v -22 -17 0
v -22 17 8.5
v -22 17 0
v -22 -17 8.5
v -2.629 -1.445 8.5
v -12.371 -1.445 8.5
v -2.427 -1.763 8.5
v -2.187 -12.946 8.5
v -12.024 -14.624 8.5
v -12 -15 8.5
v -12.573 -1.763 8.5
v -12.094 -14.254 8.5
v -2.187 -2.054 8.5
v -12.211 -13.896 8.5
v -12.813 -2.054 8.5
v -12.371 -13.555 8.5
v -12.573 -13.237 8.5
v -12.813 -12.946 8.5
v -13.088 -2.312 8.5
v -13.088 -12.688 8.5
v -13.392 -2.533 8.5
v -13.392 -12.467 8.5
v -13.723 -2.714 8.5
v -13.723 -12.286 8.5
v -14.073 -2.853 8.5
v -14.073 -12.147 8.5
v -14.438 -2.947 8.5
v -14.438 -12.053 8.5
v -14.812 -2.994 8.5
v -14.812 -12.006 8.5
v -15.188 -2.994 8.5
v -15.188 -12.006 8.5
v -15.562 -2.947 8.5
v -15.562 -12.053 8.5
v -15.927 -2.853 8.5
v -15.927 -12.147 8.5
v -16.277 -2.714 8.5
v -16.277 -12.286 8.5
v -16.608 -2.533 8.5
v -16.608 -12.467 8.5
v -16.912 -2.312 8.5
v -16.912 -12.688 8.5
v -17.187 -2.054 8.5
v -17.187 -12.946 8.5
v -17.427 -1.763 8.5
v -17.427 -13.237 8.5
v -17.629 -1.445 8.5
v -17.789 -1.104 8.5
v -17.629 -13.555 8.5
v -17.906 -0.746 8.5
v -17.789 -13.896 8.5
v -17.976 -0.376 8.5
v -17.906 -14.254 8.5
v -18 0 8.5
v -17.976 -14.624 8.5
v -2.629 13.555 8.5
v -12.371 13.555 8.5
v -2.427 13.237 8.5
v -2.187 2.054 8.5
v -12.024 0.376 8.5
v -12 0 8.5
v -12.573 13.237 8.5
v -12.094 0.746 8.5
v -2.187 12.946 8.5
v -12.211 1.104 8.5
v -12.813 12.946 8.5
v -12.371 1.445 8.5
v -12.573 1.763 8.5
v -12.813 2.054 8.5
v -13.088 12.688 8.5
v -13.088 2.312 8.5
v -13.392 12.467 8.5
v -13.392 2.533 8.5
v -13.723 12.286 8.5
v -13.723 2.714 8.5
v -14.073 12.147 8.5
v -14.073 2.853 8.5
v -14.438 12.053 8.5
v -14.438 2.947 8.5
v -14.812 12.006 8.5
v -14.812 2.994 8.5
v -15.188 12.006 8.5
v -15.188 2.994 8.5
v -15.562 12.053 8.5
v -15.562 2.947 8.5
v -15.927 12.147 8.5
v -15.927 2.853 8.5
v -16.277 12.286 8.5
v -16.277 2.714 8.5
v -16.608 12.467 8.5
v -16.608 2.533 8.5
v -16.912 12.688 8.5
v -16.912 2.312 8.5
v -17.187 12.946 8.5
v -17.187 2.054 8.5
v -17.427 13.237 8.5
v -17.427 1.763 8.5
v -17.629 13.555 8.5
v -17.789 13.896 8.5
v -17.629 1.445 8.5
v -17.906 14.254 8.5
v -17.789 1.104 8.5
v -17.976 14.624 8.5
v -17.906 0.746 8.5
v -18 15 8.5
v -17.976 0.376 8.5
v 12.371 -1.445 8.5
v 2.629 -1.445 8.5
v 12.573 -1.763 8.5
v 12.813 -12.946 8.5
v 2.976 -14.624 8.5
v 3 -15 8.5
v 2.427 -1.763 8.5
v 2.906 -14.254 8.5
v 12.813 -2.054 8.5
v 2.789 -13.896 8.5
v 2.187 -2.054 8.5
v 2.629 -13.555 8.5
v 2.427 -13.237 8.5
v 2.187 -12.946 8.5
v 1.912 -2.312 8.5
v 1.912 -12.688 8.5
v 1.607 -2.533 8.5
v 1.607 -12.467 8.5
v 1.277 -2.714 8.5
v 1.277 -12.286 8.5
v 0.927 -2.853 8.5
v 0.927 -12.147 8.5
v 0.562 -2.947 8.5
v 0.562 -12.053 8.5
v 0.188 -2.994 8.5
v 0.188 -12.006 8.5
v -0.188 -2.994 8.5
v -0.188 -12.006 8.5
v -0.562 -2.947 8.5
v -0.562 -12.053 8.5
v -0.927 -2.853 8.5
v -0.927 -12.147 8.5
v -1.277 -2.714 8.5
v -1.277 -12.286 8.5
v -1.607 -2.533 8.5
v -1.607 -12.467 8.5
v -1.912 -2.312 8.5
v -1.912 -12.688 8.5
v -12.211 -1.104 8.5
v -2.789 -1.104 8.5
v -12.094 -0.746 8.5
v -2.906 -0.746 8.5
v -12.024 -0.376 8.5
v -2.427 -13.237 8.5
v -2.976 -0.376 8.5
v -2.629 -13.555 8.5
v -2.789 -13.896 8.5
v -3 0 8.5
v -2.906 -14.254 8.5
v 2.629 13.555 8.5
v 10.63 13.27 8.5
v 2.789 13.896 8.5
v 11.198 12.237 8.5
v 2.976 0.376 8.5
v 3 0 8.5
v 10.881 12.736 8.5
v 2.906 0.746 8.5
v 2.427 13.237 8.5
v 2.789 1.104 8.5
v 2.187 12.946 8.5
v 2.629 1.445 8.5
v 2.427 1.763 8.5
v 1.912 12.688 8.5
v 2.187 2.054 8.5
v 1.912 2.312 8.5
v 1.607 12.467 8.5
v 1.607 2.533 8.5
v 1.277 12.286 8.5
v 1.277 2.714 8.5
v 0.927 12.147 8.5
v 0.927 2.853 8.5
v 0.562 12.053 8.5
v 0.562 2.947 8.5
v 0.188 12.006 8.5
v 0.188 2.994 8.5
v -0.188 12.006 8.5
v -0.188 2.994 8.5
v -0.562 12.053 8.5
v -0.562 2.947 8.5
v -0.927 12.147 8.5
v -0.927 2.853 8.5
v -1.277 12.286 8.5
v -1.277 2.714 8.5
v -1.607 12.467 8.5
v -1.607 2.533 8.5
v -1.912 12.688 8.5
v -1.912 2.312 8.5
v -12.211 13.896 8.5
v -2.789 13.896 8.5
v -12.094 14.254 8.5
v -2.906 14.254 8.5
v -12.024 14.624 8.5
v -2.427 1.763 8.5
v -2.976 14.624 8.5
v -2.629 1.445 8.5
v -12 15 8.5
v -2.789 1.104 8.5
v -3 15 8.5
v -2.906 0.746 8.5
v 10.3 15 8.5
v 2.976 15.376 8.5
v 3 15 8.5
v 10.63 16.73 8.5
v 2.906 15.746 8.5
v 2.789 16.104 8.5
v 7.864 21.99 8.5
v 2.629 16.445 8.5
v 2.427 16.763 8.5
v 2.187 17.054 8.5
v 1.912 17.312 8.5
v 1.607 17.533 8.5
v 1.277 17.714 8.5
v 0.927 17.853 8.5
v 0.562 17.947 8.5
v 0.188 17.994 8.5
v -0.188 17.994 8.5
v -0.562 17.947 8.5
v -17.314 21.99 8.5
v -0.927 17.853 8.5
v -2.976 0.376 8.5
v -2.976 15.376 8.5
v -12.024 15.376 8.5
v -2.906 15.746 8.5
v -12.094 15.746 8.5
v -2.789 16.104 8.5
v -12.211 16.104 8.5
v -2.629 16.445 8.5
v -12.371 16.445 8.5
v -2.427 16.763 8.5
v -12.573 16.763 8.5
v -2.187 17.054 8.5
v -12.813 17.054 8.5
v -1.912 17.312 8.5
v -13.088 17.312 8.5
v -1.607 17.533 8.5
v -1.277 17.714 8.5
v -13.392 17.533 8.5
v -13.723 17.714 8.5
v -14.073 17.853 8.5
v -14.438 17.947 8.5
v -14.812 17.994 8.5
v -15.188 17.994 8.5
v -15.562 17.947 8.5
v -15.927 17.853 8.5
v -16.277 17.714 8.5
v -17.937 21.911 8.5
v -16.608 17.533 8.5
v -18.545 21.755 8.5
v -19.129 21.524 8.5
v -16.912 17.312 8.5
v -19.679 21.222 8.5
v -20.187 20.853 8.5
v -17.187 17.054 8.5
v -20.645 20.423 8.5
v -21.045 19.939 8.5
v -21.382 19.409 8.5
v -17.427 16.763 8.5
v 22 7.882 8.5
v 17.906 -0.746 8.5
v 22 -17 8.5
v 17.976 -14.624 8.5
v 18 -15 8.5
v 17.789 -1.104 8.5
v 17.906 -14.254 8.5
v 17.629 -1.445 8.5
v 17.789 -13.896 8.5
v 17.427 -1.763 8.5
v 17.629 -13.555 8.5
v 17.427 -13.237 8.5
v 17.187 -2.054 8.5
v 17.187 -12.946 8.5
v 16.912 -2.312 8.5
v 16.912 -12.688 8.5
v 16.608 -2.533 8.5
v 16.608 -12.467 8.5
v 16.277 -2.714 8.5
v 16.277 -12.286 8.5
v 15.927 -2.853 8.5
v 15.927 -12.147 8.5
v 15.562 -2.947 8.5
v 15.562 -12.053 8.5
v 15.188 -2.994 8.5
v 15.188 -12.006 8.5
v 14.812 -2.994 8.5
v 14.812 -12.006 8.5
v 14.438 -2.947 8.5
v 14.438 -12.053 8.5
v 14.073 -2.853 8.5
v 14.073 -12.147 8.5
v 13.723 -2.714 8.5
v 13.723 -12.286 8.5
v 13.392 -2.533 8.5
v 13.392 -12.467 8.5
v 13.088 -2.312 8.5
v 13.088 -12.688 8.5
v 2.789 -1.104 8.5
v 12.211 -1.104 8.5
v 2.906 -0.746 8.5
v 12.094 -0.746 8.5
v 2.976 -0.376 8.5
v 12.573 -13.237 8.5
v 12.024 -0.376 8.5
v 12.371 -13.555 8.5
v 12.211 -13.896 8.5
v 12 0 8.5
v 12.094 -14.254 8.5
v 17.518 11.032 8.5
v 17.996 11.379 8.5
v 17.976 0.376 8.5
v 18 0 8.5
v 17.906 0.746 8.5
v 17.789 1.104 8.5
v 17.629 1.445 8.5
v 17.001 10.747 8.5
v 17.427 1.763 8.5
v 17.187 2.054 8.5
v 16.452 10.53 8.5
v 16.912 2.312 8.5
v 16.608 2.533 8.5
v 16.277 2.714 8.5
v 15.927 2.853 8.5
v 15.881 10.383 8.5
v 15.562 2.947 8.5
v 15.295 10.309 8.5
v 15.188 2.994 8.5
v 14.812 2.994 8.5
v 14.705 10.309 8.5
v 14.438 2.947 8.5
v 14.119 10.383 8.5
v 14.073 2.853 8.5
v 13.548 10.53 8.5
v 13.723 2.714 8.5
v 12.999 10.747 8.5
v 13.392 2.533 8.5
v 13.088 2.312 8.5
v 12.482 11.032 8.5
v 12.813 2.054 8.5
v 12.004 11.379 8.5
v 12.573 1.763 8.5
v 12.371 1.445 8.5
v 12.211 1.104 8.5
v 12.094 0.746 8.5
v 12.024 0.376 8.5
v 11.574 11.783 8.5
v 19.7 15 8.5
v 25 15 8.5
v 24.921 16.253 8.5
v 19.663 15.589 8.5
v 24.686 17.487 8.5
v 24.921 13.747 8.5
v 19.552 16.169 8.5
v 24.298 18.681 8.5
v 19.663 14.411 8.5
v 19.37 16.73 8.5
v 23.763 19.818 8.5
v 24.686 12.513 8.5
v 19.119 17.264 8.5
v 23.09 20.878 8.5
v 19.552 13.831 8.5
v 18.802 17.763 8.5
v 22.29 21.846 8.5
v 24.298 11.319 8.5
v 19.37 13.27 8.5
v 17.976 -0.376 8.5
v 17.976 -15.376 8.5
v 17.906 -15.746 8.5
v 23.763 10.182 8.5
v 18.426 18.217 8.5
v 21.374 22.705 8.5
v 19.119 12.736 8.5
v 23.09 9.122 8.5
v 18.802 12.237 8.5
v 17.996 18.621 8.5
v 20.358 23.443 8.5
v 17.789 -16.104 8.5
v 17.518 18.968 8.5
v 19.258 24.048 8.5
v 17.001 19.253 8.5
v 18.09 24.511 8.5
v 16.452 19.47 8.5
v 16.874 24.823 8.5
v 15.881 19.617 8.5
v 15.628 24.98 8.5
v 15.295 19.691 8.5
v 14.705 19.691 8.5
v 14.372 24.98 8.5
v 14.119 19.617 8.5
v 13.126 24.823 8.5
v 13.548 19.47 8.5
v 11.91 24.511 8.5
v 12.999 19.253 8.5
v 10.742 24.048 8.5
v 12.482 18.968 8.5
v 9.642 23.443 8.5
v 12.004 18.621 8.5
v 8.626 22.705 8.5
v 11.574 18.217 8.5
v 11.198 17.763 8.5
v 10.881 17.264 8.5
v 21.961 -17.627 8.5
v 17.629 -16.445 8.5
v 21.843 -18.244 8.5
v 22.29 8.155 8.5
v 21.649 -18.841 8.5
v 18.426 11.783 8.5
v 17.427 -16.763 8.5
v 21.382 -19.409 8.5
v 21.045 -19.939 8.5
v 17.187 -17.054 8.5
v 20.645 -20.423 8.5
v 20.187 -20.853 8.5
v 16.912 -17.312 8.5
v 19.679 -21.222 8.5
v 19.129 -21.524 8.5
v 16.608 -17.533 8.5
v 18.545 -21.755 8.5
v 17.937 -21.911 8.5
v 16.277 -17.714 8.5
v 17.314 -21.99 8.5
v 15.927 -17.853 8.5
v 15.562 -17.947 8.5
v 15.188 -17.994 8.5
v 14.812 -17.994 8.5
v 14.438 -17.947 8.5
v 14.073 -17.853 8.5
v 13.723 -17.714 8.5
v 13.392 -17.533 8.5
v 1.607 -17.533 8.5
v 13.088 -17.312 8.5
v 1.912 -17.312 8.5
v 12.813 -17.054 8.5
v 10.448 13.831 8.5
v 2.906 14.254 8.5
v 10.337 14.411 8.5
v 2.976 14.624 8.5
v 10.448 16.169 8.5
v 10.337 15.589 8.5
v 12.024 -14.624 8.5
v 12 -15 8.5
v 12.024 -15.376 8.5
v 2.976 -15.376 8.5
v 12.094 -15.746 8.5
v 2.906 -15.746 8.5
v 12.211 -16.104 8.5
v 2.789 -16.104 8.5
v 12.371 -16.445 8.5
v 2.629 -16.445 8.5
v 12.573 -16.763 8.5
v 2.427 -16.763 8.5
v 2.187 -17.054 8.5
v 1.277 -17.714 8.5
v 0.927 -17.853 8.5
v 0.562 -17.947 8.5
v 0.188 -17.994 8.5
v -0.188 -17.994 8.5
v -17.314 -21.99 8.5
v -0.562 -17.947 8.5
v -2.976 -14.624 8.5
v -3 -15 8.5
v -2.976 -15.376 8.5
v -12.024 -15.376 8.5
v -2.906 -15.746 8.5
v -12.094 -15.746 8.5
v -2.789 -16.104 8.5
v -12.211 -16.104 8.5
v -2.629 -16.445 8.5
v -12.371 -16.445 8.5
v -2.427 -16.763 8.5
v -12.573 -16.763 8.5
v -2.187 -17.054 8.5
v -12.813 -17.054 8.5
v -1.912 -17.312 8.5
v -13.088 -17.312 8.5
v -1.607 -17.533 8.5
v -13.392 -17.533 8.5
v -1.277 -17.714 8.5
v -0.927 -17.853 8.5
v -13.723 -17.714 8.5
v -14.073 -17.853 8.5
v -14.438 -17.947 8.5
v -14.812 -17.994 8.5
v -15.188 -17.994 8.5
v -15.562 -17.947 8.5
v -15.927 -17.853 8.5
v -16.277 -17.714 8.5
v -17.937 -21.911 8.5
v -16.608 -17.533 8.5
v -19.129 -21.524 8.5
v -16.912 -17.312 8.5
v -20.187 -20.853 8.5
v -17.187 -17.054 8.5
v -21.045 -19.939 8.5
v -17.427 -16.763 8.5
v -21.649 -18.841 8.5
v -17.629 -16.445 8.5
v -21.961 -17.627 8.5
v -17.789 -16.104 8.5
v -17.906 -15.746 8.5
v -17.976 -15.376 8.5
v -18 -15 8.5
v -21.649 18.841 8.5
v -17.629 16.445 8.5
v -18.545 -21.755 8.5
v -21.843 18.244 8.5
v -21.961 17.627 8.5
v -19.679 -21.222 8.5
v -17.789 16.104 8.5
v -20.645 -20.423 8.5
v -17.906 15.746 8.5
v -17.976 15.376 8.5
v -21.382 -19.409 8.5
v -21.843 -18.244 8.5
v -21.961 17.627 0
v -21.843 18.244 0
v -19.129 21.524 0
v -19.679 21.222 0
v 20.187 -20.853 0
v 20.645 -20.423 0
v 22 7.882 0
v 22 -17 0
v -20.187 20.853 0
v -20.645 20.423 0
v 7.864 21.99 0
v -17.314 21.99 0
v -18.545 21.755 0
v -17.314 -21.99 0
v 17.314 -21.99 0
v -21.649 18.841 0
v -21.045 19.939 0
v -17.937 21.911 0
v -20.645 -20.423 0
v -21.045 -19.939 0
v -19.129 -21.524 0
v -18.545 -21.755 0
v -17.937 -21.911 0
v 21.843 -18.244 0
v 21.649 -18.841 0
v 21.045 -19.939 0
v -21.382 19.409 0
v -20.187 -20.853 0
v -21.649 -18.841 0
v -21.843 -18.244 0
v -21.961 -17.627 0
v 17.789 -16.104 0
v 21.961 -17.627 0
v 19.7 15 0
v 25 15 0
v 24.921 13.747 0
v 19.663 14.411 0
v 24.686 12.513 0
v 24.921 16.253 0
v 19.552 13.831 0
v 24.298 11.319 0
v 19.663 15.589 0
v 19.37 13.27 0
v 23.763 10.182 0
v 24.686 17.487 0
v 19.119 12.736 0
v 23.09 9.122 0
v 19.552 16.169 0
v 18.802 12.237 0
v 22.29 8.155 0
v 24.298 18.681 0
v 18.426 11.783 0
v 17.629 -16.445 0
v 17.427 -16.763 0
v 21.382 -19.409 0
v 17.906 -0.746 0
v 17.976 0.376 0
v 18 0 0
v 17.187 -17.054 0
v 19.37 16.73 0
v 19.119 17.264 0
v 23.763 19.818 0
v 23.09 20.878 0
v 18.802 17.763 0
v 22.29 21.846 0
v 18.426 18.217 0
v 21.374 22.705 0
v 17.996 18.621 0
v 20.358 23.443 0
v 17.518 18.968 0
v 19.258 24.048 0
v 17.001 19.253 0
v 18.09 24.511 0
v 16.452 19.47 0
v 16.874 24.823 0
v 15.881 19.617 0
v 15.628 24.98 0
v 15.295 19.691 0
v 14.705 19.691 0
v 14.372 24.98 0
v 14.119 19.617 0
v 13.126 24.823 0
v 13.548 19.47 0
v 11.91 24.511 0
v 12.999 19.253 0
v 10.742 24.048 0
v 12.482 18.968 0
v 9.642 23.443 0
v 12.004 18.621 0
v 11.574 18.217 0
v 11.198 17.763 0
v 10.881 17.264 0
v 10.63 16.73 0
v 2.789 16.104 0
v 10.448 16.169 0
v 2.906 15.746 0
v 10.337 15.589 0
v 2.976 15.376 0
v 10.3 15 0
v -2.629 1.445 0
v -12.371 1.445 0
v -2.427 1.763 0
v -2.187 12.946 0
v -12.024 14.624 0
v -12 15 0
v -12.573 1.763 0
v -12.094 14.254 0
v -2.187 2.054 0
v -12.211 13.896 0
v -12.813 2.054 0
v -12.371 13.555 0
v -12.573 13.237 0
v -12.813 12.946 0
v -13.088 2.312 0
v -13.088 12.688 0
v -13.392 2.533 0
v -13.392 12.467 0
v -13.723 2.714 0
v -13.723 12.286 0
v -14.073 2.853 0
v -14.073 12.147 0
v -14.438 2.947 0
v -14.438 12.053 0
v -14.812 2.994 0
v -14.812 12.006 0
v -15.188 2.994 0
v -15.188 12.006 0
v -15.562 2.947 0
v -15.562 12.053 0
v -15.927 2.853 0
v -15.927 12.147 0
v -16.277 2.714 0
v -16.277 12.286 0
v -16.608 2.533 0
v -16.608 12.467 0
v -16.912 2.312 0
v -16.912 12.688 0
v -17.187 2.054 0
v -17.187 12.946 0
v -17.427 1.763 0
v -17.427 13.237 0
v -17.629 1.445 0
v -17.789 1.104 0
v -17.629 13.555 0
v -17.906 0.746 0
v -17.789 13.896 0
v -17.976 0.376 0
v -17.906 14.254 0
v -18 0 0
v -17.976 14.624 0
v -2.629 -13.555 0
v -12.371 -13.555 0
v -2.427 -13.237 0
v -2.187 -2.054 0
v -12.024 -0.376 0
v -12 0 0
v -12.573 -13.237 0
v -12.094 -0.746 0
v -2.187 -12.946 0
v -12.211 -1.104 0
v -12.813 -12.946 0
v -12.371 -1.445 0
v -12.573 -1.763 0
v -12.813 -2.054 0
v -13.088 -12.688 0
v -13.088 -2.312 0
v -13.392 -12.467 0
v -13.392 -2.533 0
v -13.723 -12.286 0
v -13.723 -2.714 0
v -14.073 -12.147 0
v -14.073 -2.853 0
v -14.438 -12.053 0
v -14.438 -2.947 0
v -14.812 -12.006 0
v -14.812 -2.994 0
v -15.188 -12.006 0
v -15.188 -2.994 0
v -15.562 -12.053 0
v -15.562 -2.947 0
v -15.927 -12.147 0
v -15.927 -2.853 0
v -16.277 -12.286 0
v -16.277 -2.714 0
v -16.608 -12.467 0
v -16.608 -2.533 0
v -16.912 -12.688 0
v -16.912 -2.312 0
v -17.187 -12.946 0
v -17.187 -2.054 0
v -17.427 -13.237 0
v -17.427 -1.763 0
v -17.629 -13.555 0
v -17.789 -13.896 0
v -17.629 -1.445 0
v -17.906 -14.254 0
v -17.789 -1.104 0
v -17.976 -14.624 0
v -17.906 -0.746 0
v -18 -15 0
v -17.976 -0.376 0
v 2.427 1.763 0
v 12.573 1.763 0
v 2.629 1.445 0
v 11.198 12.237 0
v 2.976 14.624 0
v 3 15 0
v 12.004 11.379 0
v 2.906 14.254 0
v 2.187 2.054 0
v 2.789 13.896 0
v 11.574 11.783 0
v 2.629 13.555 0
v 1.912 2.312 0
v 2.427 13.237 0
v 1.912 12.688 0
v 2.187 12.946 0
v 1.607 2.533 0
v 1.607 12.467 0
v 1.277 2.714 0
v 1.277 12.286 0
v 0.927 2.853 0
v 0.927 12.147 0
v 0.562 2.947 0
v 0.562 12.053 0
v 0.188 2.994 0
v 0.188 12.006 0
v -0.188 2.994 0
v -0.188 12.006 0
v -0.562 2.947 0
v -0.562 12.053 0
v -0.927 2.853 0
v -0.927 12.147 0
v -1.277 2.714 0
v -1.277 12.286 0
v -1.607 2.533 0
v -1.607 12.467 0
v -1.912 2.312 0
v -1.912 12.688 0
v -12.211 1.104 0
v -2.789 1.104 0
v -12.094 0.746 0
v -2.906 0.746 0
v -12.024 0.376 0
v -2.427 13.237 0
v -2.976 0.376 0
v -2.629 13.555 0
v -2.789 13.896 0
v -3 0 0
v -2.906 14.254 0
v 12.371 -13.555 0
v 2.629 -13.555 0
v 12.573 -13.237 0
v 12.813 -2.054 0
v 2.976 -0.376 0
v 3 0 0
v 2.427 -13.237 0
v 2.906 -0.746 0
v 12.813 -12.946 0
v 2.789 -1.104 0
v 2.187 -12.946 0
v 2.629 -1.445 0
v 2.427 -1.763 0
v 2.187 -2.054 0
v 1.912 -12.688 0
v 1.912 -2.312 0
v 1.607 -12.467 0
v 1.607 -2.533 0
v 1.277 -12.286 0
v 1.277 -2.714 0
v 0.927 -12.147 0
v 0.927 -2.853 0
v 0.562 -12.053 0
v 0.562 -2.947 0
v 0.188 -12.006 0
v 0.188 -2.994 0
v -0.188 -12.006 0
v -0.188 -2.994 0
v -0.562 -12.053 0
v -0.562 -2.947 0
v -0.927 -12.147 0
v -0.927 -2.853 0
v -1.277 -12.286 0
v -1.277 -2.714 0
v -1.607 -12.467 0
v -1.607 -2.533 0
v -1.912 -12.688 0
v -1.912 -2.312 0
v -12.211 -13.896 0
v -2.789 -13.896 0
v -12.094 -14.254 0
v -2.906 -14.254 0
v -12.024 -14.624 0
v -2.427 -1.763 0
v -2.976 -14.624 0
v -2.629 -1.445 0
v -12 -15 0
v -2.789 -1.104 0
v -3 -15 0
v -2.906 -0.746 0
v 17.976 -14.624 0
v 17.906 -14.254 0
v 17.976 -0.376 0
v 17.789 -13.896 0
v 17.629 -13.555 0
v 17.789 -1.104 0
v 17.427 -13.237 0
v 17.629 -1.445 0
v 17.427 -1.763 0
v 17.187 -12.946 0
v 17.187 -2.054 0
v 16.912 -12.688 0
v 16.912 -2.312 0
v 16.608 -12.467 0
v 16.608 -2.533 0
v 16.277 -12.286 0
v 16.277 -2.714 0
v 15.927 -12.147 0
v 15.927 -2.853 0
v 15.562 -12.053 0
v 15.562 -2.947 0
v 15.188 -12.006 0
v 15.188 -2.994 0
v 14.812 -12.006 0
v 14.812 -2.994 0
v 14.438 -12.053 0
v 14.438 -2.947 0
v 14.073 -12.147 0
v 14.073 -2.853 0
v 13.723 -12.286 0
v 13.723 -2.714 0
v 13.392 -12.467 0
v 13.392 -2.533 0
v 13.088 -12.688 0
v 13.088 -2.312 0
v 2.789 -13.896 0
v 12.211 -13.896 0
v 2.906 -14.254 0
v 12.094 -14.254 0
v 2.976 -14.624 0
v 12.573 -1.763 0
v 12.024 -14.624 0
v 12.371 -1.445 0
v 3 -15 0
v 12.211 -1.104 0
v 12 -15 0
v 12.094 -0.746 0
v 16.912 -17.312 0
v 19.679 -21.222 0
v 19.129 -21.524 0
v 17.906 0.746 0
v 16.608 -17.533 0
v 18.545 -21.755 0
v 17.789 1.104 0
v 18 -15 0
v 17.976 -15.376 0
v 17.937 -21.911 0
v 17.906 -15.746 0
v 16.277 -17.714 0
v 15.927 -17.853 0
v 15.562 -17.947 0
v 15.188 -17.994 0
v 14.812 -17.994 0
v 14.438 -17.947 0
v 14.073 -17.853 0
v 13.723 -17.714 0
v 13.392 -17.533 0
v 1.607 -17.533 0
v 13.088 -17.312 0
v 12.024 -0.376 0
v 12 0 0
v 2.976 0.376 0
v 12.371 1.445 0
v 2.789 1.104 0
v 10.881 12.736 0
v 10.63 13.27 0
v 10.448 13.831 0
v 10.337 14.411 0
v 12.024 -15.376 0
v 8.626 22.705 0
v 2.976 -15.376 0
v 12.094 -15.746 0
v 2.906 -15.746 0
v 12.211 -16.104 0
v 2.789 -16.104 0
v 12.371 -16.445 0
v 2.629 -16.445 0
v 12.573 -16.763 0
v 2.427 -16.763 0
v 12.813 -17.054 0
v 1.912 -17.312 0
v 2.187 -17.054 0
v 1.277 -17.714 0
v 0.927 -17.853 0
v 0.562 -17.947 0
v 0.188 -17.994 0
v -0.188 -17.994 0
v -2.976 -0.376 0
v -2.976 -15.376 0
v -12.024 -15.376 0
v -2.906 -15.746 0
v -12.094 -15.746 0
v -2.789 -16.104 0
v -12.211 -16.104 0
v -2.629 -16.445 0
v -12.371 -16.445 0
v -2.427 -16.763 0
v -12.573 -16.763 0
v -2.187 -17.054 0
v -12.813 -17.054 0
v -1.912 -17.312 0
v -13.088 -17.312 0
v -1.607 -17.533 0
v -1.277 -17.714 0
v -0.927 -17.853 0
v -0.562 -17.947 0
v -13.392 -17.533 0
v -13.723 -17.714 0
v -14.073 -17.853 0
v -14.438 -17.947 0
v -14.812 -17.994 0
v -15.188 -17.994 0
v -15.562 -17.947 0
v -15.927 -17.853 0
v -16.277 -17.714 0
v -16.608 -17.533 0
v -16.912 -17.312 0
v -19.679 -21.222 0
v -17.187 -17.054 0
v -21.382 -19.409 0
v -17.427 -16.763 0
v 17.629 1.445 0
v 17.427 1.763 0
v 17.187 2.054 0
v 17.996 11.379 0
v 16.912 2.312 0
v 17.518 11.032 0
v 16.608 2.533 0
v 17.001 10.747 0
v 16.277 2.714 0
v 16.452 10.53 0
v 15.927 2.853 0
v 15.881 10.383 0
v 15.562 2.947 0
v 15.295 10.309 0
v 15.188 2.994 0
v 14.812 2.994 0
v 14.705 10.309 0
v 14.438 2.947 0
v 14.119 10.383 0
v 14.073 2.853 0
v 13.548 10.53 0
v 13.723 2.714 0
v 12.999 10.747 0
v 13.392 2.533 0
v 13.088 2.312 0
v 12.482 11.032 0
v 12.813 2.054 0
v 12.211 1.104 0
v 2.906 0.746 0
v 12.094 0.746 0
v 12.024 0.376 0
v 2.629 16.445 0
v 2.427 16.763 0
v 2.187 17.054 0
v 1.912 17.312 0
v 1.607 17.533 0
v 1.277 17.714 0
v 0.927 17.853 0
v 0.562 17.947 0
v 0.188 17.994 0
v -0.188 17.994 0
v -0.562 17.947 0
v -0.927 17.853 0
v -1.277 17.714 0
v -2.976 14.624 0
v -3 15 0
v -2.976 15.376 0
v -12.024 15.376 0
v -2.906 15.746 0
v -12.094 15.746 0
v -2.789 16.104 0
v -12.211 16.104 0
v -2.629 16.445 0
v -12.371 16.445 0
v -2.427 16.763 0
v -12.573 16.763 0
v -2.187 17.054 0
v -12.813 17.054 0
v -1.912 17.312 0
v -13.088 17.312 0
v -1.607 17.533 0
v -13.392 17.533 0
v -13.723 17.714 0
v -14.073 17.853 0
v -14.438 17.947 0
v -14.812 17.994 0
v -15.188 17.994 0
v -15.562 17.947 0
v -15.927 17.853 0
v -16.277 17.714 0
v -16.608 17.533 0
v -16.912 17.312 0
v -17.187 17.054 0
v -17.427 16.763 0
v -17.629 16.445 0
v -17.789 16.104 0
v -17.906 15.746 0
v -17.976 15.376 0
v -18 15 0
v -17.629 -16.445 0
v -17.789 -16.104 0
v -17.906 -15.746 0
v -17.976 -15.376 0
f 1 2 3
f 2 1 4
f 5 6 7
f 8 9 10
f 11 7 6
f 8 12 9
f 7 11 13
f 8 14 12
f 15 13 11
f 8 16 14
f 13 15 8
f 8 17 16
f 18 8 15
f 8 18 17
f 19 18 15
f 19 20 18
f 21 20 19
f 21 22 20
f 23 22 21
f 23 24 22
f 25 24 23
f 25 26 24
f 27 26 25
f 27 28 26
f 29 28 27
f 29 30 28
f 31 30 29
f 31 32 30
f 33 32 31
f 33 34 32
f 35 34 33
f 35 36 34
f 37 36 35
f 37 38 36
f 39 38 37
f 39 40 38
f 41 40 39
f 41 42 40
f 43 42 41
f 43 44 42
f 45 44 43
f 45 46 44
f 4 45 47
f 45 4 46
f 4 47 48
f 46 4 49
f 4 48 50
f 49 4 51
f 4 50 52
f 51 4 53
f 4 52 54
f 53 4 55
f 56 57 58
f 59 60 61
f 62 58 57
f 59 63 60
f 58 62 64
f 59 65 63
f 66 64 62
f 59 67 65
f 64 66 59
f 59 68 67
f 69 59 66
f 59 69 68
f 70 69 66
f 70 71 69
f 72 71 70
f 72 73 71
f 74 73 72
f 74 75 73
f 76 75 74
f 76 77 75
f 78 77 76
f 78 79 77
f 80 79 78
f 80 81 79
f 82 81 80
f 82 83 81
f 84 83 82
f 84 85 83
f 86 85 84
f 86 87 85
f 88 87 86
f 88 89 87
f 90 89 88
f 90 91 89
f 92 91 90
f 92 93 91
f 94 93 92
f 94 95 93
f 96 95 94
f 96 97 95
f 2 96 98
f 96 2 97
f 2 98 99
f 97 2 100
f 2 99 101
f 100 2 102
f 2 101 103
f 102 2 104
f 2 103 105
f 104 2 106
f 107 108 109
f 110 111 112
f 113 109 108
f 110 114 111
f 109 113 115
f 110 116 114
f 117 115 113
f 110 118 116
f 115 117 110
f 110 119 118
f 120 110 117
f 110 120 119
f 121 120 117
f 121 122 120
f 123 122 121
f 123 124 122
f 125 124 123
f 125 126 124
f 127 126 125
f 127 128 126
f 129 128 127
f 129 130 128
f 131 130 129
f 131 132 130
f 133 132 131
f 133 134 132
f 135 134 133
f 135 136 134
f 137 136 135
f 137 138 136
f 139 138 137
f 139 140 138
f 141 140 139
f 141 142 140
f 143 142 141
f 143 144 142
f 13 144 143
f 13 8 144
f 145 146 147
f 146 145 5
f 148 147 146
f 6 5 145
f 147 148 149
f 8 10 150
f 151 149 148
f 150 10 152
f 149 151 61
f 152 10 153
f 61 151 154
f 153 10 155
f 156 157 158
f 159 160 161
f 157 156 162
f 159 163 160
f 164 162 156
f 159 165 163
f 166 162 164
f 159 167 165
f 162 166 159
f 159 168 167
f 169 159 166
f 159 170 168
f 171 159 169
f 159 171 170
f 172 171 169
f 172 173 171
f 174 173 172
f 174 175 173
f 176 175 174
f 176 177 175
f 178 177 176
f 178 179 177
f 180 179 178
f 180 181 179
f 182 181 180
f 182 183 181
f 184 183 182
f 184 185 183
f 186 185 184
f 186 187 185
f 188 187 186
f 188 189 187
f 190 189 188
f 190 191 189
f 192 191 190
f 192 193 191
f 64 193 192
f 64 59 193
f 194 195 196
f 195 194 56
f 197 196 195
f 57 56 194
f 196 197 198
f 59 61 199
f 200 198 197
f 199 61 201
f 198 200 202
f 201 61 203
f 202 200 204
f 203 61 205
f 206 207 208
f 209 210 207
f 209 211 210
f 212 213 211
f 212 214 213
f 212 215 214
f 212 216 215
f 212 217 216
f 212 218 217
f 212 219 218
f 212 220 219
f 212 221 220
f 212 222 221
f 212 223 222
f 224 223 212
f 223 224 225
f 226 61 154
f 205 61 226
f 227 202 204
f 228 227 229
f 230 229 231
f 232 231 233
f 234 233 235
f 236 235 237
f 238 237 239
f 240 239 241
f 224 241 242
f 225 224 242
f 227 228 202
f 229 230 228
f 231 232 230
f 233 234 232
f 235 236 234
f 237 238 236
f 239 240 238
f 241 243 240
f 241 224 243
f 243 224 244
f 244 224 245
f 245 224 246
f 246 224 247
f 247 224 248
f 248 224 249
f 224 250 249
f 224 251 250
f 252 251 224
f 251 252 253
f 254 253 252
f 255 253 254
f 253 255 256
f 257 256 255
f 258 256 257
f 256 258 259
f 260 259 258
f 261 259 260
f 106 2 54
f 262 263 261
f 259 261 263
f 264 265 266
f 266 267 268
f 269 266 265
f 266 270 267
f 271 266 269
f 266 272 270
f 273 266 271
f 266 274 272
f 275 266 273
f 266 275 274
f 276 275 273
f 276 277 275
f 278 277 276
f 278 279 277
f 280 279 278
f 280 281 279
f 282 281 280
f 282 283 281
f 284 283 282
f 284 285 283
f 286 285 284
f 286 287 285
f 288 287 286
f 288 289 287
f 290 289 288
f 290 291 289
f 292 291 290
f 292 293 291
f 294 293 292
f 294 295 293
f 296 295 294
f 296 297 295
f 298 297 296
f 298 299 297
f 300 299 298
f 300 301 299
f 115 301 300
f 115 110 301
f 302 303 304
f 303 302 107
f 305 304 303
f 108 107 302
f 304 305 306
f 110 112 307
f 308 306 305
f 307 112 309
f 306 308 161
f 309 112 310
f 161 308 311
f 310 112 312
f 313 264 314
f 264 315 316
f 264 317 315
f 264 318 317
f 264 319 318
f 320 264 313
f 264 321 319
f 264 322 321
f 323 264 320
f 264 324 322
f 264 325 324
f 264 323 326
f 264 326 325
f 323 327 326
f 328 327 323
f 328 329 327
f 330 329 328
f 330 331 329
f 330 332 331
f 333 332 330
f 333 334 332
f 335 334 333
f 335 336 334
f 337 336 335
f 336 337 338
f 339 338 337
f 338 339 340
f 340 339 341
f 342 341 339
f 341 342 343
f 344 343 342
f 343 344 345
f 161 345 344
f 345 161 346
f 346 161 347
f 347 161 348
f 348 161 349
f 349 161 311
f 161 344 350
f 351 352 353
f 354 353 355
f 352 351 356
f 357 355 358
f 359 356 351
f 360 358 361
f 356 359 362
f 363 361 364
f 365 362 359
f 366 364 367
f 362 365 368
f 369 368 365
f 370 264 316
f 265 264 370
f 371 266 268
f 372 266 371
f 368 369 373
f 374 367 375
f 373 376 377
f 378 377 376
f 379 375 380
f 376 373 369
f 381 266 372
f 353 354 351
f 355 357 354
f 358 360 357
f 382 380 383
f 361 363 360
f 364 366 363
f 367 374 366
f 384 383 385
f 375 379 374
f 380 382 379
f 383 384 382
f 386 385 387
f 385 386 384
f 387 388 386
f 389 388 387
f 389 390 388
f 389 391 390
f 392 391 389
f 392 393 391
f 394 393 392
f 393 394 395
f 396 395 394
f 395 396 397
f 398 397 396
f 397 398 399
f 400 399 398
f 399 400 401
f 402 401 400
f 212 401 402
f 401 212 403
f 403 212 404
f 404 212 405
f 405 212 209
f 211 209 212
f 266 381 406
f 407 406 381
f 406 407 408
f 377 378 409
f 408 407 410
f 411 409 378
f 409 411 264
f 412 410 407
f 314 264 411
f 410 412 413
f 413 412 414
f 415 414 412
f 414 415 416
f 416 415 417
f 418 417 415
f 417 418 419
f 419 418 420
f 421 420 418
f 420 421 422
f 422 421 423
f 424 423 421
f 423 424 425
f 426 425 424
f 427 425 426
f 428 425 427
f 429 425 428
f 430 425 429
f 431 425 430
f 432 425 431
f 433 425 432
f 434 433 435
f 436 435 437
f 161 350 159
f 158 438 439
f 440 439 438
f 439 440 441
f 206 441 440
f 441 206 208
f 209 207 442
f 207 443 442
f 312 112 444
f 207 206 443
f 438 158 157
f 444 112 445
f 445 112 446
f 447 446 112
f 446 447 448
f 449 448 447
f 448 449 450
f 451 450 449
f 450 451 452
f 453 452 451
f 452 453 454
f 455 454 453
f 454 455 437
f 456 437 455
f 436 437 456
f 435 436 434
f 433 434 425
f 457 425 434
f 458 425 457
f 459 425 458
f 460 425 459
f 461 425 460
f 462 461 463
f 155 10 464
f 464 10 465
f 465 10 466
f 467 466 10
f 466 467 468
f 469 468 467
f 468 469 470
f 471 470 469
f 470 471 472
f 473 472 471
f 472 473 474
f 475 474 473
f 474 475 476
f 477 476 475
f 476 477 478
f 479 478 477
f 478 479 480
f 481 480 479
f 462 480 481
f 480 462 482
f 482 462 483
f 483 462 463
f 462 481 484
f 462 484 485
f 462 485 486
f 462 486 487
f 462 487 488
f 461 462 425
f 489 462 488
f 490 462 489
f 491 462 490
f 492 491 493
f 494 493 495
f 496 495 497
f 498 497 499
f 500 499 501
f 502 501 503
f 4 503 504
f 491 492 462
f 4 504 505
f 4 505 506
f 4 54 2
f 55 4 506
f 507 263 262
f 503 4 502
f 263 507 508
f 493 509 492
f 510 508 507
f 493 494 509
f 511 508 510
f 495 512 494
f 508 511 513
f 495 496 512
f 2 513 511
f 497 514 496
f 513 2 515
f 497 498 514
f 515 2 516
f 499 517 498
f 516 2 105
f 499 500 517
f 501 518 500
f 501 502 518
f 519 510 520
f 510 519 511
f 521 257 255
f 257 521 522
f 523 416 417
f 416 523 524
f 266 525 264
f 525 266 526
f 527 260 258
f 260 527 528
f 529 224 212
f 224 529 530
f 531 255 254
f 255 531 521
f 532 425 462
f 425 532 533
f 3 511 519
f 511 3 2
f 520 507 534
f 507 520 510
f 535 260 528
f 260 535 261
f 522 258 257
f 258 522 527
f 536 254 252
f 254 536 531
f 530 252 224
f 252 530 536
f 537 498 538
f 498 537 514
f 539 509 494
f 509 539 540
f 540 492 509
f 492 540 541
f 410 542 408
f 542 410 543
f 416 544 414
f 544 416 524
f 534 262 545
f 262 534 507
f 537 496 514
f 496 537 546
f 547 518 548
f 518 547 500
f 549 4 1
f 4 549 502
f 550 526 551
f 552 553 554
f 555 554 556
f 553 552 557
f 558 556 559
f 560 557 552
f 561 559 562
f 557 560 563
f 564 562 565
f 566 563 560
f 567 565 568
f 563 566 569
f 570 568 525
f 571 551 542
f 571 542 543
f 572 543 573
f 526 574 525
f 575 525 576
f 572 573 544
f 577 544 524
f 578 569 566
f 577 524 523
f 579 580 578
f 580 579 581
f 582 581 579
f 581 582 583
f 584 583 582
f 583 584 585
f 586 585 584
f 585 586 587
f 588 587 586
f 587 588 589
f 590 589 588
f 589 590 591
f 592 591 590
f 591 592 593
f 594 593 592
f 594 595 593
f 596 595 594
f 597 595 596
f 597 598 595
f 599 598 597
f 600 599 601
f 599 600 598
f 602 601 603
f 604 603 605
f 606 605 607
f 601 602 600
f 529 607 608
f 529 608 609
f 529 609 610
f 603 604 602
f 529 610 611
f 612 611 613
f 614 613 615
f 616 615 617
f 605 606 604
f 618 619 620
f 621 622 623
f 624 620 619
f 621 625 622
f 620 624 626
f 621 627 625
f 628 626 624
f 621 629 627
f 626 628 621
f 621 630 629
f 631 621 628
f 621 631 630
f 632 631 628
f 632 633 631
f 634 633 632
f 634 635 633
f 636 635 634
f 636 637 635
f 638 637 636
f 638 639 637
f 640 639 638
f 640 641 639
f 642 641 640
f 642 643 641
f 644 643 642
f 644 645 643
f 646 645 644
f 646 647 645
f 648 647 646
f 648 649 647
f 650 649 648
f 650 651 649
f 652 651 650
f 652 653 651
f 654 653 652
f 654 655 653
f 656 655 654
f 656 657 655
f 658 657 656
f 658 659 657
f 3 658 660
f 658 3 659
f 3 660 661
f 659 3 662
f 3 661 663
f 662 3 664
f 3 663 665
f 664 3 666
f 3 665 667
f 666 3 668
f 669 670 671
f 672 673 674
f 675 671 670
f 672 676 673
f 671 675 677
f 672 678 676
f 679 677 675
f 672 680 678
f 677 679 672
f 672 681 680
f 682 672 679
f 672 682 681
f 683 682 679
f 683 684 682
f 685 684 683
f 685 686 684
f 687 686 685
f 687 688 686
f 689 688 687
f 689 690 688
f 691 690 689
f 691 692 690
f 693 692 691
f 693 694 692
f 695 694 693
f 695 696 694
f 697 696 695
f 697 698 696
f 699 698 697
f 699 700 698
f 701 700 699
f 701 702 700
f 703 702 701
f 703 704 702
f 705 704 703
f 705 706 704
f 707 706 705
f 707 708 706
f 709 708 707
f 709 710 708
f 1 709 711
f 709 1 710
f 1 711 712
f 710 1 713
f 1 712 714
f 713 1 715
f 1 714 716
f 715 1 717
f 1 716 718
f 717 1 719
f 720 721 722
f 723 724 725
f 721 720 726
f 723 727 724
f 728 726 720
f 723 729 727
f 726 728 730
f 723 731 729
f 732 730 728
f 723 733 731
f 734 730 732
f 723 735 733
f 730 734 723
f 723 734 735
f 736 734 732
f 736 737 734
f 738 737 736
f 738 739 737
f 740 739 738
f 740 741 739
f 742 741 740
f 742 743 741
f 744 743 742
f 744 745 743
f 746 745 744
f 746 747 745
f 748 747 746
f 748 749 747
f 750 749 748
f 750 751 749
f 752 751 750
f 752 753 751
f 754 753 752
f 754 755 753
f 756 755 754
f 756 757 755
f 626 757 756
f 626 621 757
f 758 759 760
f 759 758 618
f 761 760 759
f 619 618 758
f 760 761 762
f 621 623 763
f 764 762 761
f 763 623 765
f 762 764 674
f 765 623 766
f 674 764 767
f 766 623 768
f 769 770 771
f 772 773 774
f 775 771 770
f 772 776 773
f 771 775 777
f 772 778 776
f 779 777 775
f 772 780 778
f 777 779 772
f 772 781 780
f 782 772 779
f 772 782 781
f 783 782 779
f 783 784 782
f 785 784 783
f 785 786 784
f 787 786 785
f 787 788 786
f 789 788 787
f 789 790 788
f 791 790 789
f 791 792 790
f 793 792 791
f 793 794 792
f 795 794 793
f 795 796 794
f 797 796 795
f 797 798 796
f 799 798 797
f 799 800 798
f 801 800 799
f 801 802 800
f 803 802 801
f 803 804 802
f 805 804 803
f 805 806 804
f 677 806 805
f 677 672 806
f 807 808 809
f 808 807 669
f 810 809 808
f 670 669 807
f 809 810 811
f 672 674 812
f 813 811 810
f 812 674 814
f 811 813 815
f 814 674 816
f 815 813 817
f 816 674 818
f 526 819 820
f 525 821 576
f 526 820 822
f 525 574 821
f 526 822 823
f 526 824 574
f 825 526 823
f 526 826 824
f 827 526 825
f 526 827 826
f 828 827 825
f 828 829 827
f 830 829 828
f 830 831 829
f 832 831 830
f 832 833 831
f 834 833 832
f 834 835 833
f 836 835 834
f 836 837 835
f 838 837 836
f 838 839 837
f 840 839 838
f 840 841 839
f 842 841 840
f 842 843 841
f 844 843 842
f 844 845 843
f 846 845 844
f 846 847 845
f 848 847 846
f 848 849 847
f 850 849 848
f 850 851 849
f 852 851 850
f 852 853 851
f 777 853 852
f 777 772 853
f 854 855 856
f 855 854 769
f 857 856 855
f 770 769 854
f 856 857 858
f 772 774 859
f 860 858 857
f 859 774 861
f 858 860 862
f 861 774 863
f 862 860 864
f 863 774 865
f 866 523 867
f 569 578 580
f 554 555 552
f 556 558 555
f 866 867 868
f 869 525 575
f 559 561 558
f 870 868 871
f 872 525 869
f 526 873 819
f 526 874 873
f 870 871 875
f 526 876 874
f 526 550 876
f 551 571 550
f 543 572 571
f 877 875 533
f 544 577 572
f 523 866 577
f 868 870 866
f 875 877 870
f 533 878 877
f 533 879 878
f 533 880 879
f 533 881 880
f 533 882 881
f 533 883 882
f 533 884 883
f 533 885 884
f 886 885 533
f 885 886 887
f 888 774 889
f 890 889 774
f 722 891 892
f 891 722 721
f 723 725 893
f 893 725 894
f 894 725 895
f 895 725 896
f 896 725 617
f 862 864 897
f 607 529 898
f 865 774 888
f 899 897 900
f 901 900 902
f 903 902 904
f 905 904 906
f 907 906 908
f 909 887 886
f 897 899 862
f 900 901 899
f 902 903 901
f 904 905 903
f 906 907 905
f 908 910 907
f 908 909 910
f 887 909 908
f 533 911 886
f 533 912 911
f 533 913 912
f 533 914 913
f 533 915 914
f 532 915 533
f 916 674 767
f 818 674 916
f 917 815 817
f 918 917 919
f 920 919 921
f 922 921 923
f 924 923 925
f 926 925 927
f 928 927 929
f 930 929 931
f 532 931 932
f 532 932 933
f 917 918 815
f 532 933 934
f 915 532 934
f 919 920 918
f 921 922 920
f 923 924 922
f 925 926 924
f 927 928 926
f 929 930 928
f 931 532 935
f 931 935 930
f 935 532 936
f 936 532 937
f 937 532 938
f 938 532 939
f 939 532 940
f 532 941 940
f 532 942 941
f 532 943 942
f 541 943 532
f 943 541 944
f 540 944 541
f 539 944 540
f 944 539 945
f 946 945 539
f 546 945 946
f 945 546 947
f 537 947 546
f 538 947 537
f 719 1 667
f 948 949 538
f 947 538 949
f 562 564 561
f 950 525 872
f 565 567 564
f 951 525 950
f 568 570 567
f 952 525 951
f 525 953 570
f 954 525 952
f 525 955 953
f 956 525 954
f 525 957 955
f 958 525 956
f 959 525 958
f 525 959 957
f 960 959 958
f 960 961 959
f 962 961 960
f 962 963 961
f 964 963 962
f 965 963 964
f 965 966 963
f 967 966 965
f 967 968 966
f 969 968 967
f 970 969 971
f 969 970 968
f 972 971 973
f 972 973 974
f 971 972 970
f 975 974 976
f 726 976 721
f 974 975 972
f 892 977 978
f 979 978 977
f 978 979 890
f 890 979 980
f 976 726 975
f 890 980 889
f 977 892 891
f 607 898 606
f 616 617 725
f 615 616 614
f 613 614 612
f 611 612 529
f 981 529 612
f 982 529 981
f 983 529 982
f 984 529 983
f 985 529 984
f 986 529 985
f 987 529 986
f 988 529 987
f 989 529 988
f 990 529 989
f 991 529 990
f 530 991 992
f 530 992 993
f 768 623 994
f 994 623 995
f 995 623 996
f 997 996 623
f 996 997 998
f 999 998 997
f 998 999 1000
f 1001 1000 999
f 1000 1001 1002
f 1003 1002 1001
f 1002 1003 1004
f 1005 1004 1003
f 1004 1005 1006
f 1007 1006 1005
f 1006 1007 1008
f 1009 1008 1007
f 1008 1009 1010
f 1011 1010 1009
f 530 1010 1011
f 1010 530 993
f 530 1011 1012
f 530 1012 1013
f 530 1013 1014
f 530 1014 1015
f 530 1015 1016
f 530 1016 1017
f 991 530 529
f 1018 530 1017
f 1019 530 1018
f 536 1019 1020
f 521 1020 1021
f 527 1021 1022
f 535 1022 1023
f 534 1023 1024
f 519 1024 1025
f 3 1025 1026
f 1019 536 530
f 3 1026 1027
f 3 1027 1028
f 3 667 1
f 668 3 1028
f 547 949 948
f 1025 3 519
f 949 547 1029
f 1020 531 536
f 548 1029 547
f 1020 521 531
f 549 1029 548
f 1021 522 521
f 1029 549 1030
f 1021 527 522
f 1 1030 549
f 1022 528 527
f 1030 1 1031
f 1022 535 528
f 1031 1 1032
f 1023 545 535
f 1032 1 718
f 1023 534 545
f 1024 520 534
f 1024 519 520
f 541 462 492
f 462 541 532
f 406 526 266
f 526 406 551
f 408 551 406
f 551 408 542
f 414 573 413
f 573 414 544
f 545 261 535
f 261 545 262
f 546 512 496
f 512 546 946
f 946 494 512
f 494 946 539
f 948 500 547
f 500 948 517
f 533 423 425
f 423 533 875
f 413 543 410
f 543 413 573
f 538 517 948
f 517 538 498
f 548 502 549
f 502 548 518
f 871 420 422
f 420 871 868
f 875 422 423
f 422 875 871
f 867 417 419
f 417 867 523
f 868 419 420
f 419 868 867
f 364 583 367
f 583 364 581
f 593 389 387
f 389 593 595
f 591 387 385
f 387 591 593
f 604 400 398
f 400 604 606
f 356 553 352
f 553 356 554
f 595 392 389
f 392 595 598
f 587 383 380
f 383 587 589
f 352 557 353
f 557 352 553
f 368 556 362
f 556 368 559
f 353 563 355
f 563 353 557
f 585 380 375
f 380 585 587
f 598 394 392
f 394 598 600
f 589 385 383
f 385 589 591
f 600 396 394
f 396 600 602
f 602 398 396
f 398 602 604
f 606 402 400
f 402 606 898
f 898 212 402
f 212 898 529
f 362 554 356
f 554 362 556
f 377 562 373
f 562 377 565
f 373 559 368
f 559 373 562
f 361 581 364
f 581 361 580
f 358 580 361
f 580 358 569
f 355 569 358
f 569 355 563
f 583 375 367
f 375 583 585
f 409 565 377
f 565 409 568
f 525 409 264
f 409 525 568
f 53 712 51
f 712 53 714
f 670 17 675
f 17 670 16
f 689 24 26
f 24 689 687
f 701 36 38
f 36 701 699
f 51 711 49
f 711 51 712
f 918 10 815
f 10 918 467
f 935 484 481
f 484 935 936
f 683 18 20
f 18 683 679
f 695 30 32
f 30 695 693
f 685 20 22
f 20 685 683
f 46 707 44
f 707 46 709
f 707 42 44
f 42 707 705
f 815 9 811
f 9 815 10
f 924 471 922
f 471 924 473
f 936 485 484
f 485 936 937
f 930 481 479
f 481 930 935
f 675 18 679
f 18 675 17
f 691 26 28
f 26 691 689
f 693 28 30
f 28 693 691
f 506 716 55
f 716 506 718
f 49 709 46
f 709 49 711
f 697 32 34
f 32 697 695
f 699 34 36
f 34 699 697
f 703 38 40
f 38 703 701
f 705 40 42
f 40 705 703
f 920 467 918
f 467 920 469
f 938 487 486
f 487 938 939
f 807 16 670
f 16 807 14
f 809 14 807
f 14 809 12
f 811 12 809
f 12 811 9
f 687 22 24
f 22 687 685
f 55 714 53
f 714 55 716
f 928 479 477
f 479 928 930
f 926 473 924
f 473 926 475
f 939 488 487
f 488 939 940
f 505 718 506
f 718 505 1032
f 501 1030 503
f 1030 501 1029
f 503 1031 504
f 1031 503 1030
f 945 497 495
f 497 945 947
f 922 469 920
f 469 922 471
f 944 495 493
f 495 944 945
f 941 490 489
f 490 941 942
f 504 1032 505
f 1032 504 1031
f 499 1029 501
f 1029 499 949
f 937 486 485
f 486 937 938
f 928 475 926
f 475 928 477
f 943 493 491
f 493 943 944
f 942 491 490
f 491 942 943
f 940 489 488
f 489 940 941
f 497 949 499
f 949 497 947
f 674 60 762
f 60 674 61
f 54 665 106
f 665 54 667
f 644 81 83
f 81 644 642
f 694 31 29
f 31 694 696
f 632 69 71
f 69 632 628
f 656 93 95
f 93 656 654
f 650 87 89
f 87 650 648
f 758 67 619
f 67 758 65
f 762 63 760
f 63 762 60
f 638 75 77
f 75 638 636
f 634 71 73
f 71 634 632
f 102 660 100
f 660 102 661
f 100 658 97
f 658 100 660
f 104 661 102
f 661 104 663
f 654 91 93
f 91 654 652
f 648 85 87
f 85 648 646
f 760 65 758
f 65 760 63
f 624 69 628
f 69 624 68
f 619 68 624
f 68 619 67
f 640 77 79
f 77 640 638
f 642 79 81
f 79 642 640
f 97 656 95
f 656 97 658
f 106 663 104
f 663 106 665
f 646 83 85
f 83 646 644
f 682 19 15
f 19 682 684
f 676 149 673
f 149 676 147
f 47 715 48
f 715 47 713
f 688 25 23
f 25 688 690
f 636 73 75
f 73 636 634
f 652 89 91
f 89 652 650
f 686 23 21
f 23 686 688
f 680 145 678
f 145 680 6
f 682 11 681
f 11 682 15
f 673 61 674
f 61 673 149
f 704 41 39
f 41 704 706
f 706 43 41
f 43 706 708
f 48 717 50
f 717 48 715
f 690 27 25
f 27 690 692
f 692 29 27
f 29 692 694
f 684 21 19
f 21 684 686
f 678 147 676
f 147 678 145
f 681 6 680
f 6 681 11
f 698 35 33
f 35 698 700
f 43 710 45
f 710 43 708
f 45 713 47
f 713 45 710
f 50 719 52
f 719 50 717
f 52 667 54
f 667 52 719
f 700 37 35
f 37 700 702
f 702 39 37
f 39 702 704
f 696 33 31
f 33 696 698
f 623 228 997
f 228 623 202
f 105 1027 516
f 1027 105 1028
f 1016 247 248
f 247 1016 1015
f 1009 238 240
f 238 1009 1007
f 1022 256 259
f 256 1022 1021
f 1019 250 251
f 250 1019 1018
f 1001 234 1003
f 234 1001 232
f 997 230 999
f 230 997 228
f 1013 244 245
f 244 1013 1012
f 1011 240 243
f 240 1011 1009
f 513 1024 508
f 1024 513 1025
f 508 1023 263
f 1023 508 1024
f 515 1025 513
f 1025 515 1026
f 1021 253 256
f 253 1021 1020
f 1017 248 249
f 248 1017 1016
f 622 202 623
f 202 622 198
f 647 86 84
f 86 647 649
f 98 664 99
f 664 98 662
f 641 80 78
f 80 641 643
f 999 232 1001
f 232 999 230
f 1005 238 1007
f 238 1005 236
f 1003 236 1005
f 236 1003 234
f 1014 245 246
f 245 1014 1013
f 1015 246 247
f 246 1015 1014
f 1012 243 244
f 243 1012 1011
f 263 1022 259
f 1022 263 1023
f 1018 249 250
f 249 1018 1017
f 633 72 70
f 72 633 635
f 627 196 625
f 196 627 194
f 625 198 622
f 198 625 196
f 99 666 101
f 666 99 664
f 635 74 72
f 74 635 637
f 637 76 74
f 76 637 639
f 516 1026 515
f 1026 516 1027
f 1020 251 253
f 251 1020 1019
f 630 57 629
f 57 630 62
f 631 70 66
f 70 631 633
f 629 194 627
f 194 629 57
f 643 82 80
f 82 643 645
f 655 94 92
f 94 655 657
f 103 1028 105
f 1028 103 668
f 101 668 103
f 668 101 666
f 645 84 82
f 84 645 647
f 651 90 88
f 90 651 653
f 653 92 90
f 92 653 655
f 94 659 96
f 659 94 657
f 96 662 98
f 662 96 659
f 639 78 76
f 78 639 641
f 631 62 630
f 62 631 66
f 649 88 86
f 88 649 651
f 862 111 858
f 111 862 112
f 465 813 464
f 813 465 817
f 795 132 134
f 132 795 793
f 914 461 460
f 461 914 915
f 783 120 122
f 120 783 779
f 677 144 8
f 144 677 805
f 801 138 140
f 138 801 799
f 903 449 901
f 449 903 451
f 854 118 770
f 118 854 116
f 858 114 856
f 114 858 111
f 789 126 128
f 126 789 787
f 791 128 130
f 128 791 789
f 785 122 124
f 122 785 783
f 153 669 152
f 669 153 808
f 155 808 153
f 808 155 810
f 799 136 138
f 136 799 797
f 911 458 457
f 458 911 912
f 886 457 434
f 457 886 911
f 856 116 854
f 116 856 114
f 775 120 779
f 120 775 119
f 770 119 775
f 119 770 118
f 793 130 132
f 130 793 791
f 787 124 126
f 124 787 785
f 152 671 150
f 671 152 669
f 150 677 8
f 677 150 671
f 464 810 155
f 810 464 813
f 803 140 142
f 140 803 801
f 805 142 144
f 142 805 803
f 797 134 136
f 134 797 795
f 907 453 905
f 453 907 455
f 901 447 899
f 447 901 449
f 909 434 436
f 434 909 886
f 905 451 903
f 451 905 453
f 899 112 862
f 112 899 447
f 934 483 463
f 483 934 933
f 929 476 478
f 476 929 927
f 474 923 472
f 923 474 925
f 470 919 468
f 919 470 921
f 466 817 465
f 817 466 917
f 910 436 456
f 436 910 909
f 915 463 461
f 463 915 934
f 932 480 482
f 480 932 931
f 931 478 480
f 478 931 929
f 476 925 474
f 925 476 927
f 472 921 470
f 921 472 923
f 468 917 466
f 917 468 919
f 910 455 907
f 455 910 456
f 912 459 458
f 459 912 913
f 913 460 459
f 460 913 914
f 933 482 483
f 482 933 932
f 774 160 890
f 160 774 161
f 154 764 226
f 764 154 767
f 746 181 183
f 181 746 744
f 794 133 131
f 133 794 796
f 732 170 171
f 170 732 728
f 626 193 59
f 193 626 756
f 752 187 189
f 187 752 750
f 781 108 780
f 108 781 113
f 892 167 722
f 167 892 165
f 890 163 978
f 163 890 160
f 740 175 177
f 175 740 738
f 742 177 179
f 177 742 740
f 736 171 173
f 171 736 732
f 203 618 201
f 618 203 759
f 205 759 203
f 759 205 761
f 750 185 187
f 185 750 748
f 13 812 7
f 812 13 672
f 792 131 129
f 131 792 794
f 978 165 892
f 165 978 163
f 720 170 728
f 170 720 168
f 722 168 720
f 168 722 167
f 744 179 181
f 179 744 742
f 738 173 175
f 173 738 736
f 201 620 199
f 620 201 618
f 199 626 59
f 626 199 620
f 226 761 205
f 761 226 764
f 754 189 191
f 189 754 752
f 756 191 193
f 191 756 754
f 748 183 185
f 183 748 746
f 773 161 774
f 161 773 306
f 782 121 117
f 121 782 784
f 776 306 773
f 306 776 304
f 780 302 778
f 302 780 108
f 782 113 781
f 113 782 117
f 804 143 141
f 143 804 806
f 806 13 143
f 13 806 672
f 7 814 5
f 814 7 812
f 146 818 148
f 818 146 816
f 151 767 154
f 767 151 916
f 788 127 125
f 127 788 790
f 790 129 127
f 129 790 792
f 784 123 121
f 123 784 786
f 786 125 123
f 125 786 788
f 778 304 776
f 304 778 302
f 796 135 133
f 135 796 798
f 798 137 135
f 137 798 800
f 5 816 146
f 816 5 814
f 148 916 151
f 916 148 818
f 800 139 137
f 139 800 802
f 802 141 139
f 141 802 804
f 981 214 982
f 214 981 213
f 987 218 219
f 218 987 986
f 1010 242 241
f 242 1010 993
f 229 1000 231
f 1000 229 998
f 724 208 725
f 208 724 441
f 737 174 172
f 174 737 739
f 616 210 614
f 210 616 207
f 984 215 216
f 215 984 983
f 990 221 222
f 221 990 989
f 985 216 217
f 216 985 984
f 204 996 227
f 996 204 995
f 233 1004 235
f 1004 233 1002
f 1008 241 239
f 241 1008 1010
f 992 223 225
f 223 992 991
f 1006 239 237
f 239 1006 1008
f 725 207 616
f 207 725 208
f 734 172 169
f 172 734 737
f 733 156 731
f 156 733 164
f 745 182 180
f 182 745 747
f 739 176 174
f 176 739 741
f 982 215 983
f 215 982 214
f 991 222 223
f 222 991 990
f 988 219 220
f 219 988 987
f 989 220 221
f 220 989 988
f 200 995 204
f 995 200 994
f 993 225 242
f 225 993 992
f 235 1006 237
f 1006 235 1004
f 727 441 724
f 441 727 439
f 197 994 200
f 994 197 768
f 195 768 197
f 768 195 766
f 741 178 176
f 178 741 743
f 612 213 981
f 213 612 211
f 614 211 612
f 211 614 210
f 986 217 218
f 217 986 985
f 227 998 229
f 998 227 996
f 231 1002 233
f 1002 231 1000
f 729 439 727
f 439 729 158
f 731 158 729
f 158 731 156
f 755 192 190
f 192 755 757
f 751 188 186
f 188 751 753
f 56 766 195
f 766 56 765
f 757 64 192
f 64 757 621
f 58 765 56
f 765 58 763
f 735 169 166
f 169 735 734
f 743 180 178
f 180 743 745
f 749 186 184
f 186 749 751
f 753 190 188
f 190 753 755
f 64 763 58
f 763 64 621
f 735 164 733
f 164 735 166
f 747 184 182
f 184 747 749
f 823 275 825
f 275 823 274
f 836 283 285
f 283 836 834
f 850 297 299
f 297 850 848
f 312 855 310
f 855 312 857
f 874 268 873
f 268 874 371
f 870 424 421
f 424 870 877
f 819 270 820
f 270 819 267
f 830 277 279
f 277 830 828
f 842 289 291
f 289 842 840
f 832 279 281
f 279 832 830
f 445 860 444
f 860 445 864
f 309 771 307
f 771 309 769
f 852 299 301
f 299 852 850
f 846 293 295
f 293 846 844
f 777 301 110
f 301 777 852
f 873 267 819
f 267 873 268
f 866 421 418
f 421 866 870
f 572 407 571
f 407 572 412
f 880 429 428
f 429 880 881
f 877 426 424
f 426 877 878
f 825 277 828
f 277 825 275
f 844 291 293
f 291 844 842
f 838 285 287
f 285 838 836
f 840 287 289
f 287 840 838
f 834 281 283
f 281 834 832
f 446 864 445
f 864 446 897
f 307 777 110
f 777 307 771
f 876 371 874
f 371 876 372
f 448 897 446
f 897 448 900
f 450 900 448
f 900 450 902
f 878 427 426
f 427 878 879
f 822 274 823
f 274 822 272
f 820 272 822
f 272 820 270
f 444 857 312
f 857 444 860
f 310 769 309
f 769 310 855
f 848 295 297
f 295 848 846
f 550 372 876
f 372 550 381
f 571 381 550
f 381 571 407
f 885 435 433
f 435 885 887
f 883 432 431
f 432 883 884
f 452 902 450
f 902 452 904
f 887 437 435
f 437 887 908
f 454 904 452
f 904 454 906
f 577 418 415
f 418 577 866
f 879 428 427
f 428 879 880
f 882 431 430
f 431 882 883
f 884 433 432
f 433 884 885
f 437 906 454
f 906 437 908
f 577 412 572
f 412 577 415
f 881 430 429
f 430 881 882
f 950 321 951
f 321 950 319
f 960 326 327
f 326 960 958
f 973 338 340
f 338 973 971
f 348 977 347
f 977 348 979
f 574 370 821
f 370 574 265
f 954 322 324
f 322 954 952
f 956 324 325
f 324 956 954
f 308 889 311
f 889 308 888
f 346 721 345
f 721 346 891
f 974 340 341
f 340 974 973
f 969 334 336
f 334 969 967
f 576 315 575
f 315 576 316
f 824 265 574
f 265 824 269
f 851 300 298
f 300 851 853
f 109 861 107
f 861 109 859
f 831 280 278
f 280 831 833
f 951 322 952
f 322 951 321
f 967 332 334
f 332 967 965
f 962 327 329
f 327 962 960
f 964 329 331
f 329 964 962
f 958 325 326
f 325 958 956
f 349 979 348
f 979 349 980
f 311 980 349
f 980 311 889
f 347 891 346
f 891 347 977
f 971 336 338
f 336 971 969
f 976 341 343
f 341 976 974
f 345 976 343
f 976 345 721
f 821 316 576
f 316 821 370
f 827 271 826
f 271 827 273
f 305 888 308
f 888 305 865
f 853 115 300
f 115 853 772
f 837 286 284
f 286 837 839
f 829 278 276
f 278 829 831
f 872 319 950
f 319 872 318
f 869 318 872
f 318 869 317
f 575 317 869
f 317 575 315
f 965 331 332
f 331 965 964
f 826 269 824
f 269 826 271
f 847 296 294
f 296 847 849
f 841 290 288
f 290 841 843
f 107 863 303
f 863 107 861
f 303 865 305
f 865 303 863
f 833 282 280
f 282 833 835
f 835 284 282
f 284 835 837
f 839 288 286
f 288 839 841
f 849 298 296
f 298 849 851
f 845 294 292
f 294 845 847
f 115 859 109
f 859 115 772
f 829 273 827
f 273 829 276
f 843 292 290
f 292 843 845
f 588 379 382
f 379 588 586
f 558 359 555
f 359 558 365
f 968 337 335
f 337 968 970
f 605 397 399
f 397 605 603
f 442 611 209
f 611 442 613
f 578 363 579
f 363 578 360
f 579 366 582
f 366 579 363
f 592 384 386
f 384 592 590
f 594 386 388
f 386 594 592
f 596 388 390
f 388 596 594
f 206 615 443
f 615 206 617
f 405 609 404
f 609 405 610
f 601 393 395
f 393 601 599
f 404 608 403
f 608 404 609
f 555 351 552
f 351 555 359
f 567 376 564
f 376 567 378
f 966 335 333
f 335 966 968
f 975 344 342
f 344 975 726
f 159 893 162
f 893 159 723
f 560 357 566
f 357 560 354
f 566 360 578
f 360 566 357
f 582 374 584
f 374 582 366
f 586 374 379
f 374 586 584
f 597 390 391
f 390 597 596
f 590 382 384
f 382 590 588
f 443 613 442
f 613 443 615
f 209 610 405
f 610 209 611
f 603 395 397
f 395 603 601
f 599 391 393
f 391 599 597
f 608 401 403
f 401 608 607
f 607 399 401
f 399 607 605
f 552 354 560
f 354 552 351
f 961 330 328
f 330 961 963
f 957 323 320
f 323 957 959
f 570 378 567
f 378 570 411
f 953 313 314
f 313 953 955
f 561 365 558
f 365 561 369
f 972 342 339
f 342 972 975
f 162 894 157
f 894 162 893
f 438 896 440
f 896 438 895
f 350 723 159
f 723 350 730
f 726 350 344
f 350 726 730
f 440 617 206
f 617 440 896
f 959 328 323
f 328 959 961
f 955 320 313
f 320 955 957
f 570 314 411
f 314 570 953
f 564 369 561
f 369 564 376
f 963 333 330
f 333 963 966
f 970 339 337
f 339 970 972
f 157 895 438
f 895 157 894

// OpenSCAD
$fn = 50;


difference() {
	union() {
		translate(v = [0, 0, 0]) {
			rotate(a = [0, 0, 0]) {
				hull() {
					translate(v = [-17.0000000000, 17.0000000000, 0]) {
						rotate(a = [0, 0, 0]) {
							translate(v = [0, 0, 0]) {
								rotate(a = [0, 0, 0]) {
									cylinder(h = 8.5000000000, r = 5);
								}
							}
						}
					}
					translate(v = [17.0000000000, 17.0000000000, 0]) {
						rotate(a = [0, 0, 0]) {
							translate(v = [0, 0, 0]) {
								rotate(a = [0, 0, 0]) {
									cylinder(h = 8.5000000000, r = 5);
								}
							}
						}
					}
					translate(v = [-17.0000000000, -17.0000000000, 0]) {
						rotate(a = [0, 0, 0]) {
							translate(v = [0, 0, 0]) {
								rotate(a = [0, 0, 0]) {
									cylinder(h = 8.5000000000, r = 5);
								}
							}
						}
					}
					translate(v = [17.0000000000, -17.0000000000, 0]) {
						rotate(a = [0, 0, 0]) {
							translate(v = [0, 0, 0]) {
								rotate(a = [0, 0, 0]) {
									cylinder(h = 8.5000000000, r = 5);
								}
							}
						}
					}
				}
			}
		}
		translate(v = [15.0000000000, 15.0000000000, 0.0000000000]) {
			rotate(a = [0, 0, 0]) {
				cylinder(h = 8.5000000000, r = 10.0000000000);
			}
		}
	}
	union() {
		translate(v = [-15.0000000000, -15.0000000000, 0]) {
			rotate(a = [0, 0, 0]) {
				translate(v = [0, 0, -50]) {
					rotate(a = [0, 0, 0]) {
						cylinder(h = 100, r = 3.0000000000);
					}
				}
			}
		}
		translate(v = [-15.0000000000, 0.0000000000, 0]) {
			rotate(a = [0, 0, 0]) {
				translate(v = [0, 0, -50]) {
					rotate(a = [0, 0, 0]) {
						cylinder(h = 100, r = 3.0000000000);
					}
				}
			}
		}
		translate(v = [-15.0000000000, 15.0000000000, 0]) {
			rotate(a = [0, 0, 0]) {
				translate(v = [0, 0, -50]) {
					rotate(a = [0, 0, 0]) {
						cylinder(h = 100, r = 3.0000000000);
					}
				}
			}
		}
		translate(v = [0.0000000000, -15.0000000000, 0]) {
			rotate(a = [0, 0, 0]) {
				translate(v = [0, 0, -50]) {
					rotate(a = [0, 0, 0]) {
						cylinder(h = 100, r = 3.0000000000);
					}
				}
			}
		}
		translate(v = [0.0000000000, 0.0000000000, 0]) {
			rotate(a = [0, 0, 0]) {
				translate(v = [0, 0, -50]) {
					rotate(a = [0, 0, 0]) {
						cylinder(h = 100, r = 3.0000000000);
					}
				}
			}
		}
		translate(v = [0.0000000000, 15.0000000000, 0]) {
			rotate(a = [0, 0, 0]) {
				translate(v = [0, 0, -50]) {
					rotate(a = [0, 0, 0]) {
						cylinder(h = 100, r = 3.0000000000);
					}
				}
			}
		}
		translate(v = [15.0000000000, -15.0000000000, 0]) {
			rotate(a = [0, 0, 0]) {
				translate(v = [0, 0, -50]) {
					rotate(a = [0, 0, 0]) {
						cylinder(h = 100, r = 3.0000000000);
					}
				}
			}
		}
		translate(v = [15.0000000000, 0.0000000000, 0]) {
			rotate(a = [0, 0, 0]) {
				translate(v = [0, 0, -50]) {
					rotate(a = [0, 0, 0]) {
						cylinder(h = 100, r = 3.0000000000);
					}
				}
			}
		}
		translate(v = [15.0000000000, 15.0000000000, 0]) {
			rotate(a = [0, 0, 0]) {
				translate(v = [0, 0, -50]) {
					rotate(a = [0, 0, 0]) {
						cylinder(h = 100, r = 3.0000000000);
					}
				}
			}
		}
		translate(v = [15.0000000000, 15.0000000000, -125.0000000000]) {
			rotate(a = [0, 0, 0]) {
				cylinder(h = 250, r = 4.7000000000);
			}
		}
	}
}
